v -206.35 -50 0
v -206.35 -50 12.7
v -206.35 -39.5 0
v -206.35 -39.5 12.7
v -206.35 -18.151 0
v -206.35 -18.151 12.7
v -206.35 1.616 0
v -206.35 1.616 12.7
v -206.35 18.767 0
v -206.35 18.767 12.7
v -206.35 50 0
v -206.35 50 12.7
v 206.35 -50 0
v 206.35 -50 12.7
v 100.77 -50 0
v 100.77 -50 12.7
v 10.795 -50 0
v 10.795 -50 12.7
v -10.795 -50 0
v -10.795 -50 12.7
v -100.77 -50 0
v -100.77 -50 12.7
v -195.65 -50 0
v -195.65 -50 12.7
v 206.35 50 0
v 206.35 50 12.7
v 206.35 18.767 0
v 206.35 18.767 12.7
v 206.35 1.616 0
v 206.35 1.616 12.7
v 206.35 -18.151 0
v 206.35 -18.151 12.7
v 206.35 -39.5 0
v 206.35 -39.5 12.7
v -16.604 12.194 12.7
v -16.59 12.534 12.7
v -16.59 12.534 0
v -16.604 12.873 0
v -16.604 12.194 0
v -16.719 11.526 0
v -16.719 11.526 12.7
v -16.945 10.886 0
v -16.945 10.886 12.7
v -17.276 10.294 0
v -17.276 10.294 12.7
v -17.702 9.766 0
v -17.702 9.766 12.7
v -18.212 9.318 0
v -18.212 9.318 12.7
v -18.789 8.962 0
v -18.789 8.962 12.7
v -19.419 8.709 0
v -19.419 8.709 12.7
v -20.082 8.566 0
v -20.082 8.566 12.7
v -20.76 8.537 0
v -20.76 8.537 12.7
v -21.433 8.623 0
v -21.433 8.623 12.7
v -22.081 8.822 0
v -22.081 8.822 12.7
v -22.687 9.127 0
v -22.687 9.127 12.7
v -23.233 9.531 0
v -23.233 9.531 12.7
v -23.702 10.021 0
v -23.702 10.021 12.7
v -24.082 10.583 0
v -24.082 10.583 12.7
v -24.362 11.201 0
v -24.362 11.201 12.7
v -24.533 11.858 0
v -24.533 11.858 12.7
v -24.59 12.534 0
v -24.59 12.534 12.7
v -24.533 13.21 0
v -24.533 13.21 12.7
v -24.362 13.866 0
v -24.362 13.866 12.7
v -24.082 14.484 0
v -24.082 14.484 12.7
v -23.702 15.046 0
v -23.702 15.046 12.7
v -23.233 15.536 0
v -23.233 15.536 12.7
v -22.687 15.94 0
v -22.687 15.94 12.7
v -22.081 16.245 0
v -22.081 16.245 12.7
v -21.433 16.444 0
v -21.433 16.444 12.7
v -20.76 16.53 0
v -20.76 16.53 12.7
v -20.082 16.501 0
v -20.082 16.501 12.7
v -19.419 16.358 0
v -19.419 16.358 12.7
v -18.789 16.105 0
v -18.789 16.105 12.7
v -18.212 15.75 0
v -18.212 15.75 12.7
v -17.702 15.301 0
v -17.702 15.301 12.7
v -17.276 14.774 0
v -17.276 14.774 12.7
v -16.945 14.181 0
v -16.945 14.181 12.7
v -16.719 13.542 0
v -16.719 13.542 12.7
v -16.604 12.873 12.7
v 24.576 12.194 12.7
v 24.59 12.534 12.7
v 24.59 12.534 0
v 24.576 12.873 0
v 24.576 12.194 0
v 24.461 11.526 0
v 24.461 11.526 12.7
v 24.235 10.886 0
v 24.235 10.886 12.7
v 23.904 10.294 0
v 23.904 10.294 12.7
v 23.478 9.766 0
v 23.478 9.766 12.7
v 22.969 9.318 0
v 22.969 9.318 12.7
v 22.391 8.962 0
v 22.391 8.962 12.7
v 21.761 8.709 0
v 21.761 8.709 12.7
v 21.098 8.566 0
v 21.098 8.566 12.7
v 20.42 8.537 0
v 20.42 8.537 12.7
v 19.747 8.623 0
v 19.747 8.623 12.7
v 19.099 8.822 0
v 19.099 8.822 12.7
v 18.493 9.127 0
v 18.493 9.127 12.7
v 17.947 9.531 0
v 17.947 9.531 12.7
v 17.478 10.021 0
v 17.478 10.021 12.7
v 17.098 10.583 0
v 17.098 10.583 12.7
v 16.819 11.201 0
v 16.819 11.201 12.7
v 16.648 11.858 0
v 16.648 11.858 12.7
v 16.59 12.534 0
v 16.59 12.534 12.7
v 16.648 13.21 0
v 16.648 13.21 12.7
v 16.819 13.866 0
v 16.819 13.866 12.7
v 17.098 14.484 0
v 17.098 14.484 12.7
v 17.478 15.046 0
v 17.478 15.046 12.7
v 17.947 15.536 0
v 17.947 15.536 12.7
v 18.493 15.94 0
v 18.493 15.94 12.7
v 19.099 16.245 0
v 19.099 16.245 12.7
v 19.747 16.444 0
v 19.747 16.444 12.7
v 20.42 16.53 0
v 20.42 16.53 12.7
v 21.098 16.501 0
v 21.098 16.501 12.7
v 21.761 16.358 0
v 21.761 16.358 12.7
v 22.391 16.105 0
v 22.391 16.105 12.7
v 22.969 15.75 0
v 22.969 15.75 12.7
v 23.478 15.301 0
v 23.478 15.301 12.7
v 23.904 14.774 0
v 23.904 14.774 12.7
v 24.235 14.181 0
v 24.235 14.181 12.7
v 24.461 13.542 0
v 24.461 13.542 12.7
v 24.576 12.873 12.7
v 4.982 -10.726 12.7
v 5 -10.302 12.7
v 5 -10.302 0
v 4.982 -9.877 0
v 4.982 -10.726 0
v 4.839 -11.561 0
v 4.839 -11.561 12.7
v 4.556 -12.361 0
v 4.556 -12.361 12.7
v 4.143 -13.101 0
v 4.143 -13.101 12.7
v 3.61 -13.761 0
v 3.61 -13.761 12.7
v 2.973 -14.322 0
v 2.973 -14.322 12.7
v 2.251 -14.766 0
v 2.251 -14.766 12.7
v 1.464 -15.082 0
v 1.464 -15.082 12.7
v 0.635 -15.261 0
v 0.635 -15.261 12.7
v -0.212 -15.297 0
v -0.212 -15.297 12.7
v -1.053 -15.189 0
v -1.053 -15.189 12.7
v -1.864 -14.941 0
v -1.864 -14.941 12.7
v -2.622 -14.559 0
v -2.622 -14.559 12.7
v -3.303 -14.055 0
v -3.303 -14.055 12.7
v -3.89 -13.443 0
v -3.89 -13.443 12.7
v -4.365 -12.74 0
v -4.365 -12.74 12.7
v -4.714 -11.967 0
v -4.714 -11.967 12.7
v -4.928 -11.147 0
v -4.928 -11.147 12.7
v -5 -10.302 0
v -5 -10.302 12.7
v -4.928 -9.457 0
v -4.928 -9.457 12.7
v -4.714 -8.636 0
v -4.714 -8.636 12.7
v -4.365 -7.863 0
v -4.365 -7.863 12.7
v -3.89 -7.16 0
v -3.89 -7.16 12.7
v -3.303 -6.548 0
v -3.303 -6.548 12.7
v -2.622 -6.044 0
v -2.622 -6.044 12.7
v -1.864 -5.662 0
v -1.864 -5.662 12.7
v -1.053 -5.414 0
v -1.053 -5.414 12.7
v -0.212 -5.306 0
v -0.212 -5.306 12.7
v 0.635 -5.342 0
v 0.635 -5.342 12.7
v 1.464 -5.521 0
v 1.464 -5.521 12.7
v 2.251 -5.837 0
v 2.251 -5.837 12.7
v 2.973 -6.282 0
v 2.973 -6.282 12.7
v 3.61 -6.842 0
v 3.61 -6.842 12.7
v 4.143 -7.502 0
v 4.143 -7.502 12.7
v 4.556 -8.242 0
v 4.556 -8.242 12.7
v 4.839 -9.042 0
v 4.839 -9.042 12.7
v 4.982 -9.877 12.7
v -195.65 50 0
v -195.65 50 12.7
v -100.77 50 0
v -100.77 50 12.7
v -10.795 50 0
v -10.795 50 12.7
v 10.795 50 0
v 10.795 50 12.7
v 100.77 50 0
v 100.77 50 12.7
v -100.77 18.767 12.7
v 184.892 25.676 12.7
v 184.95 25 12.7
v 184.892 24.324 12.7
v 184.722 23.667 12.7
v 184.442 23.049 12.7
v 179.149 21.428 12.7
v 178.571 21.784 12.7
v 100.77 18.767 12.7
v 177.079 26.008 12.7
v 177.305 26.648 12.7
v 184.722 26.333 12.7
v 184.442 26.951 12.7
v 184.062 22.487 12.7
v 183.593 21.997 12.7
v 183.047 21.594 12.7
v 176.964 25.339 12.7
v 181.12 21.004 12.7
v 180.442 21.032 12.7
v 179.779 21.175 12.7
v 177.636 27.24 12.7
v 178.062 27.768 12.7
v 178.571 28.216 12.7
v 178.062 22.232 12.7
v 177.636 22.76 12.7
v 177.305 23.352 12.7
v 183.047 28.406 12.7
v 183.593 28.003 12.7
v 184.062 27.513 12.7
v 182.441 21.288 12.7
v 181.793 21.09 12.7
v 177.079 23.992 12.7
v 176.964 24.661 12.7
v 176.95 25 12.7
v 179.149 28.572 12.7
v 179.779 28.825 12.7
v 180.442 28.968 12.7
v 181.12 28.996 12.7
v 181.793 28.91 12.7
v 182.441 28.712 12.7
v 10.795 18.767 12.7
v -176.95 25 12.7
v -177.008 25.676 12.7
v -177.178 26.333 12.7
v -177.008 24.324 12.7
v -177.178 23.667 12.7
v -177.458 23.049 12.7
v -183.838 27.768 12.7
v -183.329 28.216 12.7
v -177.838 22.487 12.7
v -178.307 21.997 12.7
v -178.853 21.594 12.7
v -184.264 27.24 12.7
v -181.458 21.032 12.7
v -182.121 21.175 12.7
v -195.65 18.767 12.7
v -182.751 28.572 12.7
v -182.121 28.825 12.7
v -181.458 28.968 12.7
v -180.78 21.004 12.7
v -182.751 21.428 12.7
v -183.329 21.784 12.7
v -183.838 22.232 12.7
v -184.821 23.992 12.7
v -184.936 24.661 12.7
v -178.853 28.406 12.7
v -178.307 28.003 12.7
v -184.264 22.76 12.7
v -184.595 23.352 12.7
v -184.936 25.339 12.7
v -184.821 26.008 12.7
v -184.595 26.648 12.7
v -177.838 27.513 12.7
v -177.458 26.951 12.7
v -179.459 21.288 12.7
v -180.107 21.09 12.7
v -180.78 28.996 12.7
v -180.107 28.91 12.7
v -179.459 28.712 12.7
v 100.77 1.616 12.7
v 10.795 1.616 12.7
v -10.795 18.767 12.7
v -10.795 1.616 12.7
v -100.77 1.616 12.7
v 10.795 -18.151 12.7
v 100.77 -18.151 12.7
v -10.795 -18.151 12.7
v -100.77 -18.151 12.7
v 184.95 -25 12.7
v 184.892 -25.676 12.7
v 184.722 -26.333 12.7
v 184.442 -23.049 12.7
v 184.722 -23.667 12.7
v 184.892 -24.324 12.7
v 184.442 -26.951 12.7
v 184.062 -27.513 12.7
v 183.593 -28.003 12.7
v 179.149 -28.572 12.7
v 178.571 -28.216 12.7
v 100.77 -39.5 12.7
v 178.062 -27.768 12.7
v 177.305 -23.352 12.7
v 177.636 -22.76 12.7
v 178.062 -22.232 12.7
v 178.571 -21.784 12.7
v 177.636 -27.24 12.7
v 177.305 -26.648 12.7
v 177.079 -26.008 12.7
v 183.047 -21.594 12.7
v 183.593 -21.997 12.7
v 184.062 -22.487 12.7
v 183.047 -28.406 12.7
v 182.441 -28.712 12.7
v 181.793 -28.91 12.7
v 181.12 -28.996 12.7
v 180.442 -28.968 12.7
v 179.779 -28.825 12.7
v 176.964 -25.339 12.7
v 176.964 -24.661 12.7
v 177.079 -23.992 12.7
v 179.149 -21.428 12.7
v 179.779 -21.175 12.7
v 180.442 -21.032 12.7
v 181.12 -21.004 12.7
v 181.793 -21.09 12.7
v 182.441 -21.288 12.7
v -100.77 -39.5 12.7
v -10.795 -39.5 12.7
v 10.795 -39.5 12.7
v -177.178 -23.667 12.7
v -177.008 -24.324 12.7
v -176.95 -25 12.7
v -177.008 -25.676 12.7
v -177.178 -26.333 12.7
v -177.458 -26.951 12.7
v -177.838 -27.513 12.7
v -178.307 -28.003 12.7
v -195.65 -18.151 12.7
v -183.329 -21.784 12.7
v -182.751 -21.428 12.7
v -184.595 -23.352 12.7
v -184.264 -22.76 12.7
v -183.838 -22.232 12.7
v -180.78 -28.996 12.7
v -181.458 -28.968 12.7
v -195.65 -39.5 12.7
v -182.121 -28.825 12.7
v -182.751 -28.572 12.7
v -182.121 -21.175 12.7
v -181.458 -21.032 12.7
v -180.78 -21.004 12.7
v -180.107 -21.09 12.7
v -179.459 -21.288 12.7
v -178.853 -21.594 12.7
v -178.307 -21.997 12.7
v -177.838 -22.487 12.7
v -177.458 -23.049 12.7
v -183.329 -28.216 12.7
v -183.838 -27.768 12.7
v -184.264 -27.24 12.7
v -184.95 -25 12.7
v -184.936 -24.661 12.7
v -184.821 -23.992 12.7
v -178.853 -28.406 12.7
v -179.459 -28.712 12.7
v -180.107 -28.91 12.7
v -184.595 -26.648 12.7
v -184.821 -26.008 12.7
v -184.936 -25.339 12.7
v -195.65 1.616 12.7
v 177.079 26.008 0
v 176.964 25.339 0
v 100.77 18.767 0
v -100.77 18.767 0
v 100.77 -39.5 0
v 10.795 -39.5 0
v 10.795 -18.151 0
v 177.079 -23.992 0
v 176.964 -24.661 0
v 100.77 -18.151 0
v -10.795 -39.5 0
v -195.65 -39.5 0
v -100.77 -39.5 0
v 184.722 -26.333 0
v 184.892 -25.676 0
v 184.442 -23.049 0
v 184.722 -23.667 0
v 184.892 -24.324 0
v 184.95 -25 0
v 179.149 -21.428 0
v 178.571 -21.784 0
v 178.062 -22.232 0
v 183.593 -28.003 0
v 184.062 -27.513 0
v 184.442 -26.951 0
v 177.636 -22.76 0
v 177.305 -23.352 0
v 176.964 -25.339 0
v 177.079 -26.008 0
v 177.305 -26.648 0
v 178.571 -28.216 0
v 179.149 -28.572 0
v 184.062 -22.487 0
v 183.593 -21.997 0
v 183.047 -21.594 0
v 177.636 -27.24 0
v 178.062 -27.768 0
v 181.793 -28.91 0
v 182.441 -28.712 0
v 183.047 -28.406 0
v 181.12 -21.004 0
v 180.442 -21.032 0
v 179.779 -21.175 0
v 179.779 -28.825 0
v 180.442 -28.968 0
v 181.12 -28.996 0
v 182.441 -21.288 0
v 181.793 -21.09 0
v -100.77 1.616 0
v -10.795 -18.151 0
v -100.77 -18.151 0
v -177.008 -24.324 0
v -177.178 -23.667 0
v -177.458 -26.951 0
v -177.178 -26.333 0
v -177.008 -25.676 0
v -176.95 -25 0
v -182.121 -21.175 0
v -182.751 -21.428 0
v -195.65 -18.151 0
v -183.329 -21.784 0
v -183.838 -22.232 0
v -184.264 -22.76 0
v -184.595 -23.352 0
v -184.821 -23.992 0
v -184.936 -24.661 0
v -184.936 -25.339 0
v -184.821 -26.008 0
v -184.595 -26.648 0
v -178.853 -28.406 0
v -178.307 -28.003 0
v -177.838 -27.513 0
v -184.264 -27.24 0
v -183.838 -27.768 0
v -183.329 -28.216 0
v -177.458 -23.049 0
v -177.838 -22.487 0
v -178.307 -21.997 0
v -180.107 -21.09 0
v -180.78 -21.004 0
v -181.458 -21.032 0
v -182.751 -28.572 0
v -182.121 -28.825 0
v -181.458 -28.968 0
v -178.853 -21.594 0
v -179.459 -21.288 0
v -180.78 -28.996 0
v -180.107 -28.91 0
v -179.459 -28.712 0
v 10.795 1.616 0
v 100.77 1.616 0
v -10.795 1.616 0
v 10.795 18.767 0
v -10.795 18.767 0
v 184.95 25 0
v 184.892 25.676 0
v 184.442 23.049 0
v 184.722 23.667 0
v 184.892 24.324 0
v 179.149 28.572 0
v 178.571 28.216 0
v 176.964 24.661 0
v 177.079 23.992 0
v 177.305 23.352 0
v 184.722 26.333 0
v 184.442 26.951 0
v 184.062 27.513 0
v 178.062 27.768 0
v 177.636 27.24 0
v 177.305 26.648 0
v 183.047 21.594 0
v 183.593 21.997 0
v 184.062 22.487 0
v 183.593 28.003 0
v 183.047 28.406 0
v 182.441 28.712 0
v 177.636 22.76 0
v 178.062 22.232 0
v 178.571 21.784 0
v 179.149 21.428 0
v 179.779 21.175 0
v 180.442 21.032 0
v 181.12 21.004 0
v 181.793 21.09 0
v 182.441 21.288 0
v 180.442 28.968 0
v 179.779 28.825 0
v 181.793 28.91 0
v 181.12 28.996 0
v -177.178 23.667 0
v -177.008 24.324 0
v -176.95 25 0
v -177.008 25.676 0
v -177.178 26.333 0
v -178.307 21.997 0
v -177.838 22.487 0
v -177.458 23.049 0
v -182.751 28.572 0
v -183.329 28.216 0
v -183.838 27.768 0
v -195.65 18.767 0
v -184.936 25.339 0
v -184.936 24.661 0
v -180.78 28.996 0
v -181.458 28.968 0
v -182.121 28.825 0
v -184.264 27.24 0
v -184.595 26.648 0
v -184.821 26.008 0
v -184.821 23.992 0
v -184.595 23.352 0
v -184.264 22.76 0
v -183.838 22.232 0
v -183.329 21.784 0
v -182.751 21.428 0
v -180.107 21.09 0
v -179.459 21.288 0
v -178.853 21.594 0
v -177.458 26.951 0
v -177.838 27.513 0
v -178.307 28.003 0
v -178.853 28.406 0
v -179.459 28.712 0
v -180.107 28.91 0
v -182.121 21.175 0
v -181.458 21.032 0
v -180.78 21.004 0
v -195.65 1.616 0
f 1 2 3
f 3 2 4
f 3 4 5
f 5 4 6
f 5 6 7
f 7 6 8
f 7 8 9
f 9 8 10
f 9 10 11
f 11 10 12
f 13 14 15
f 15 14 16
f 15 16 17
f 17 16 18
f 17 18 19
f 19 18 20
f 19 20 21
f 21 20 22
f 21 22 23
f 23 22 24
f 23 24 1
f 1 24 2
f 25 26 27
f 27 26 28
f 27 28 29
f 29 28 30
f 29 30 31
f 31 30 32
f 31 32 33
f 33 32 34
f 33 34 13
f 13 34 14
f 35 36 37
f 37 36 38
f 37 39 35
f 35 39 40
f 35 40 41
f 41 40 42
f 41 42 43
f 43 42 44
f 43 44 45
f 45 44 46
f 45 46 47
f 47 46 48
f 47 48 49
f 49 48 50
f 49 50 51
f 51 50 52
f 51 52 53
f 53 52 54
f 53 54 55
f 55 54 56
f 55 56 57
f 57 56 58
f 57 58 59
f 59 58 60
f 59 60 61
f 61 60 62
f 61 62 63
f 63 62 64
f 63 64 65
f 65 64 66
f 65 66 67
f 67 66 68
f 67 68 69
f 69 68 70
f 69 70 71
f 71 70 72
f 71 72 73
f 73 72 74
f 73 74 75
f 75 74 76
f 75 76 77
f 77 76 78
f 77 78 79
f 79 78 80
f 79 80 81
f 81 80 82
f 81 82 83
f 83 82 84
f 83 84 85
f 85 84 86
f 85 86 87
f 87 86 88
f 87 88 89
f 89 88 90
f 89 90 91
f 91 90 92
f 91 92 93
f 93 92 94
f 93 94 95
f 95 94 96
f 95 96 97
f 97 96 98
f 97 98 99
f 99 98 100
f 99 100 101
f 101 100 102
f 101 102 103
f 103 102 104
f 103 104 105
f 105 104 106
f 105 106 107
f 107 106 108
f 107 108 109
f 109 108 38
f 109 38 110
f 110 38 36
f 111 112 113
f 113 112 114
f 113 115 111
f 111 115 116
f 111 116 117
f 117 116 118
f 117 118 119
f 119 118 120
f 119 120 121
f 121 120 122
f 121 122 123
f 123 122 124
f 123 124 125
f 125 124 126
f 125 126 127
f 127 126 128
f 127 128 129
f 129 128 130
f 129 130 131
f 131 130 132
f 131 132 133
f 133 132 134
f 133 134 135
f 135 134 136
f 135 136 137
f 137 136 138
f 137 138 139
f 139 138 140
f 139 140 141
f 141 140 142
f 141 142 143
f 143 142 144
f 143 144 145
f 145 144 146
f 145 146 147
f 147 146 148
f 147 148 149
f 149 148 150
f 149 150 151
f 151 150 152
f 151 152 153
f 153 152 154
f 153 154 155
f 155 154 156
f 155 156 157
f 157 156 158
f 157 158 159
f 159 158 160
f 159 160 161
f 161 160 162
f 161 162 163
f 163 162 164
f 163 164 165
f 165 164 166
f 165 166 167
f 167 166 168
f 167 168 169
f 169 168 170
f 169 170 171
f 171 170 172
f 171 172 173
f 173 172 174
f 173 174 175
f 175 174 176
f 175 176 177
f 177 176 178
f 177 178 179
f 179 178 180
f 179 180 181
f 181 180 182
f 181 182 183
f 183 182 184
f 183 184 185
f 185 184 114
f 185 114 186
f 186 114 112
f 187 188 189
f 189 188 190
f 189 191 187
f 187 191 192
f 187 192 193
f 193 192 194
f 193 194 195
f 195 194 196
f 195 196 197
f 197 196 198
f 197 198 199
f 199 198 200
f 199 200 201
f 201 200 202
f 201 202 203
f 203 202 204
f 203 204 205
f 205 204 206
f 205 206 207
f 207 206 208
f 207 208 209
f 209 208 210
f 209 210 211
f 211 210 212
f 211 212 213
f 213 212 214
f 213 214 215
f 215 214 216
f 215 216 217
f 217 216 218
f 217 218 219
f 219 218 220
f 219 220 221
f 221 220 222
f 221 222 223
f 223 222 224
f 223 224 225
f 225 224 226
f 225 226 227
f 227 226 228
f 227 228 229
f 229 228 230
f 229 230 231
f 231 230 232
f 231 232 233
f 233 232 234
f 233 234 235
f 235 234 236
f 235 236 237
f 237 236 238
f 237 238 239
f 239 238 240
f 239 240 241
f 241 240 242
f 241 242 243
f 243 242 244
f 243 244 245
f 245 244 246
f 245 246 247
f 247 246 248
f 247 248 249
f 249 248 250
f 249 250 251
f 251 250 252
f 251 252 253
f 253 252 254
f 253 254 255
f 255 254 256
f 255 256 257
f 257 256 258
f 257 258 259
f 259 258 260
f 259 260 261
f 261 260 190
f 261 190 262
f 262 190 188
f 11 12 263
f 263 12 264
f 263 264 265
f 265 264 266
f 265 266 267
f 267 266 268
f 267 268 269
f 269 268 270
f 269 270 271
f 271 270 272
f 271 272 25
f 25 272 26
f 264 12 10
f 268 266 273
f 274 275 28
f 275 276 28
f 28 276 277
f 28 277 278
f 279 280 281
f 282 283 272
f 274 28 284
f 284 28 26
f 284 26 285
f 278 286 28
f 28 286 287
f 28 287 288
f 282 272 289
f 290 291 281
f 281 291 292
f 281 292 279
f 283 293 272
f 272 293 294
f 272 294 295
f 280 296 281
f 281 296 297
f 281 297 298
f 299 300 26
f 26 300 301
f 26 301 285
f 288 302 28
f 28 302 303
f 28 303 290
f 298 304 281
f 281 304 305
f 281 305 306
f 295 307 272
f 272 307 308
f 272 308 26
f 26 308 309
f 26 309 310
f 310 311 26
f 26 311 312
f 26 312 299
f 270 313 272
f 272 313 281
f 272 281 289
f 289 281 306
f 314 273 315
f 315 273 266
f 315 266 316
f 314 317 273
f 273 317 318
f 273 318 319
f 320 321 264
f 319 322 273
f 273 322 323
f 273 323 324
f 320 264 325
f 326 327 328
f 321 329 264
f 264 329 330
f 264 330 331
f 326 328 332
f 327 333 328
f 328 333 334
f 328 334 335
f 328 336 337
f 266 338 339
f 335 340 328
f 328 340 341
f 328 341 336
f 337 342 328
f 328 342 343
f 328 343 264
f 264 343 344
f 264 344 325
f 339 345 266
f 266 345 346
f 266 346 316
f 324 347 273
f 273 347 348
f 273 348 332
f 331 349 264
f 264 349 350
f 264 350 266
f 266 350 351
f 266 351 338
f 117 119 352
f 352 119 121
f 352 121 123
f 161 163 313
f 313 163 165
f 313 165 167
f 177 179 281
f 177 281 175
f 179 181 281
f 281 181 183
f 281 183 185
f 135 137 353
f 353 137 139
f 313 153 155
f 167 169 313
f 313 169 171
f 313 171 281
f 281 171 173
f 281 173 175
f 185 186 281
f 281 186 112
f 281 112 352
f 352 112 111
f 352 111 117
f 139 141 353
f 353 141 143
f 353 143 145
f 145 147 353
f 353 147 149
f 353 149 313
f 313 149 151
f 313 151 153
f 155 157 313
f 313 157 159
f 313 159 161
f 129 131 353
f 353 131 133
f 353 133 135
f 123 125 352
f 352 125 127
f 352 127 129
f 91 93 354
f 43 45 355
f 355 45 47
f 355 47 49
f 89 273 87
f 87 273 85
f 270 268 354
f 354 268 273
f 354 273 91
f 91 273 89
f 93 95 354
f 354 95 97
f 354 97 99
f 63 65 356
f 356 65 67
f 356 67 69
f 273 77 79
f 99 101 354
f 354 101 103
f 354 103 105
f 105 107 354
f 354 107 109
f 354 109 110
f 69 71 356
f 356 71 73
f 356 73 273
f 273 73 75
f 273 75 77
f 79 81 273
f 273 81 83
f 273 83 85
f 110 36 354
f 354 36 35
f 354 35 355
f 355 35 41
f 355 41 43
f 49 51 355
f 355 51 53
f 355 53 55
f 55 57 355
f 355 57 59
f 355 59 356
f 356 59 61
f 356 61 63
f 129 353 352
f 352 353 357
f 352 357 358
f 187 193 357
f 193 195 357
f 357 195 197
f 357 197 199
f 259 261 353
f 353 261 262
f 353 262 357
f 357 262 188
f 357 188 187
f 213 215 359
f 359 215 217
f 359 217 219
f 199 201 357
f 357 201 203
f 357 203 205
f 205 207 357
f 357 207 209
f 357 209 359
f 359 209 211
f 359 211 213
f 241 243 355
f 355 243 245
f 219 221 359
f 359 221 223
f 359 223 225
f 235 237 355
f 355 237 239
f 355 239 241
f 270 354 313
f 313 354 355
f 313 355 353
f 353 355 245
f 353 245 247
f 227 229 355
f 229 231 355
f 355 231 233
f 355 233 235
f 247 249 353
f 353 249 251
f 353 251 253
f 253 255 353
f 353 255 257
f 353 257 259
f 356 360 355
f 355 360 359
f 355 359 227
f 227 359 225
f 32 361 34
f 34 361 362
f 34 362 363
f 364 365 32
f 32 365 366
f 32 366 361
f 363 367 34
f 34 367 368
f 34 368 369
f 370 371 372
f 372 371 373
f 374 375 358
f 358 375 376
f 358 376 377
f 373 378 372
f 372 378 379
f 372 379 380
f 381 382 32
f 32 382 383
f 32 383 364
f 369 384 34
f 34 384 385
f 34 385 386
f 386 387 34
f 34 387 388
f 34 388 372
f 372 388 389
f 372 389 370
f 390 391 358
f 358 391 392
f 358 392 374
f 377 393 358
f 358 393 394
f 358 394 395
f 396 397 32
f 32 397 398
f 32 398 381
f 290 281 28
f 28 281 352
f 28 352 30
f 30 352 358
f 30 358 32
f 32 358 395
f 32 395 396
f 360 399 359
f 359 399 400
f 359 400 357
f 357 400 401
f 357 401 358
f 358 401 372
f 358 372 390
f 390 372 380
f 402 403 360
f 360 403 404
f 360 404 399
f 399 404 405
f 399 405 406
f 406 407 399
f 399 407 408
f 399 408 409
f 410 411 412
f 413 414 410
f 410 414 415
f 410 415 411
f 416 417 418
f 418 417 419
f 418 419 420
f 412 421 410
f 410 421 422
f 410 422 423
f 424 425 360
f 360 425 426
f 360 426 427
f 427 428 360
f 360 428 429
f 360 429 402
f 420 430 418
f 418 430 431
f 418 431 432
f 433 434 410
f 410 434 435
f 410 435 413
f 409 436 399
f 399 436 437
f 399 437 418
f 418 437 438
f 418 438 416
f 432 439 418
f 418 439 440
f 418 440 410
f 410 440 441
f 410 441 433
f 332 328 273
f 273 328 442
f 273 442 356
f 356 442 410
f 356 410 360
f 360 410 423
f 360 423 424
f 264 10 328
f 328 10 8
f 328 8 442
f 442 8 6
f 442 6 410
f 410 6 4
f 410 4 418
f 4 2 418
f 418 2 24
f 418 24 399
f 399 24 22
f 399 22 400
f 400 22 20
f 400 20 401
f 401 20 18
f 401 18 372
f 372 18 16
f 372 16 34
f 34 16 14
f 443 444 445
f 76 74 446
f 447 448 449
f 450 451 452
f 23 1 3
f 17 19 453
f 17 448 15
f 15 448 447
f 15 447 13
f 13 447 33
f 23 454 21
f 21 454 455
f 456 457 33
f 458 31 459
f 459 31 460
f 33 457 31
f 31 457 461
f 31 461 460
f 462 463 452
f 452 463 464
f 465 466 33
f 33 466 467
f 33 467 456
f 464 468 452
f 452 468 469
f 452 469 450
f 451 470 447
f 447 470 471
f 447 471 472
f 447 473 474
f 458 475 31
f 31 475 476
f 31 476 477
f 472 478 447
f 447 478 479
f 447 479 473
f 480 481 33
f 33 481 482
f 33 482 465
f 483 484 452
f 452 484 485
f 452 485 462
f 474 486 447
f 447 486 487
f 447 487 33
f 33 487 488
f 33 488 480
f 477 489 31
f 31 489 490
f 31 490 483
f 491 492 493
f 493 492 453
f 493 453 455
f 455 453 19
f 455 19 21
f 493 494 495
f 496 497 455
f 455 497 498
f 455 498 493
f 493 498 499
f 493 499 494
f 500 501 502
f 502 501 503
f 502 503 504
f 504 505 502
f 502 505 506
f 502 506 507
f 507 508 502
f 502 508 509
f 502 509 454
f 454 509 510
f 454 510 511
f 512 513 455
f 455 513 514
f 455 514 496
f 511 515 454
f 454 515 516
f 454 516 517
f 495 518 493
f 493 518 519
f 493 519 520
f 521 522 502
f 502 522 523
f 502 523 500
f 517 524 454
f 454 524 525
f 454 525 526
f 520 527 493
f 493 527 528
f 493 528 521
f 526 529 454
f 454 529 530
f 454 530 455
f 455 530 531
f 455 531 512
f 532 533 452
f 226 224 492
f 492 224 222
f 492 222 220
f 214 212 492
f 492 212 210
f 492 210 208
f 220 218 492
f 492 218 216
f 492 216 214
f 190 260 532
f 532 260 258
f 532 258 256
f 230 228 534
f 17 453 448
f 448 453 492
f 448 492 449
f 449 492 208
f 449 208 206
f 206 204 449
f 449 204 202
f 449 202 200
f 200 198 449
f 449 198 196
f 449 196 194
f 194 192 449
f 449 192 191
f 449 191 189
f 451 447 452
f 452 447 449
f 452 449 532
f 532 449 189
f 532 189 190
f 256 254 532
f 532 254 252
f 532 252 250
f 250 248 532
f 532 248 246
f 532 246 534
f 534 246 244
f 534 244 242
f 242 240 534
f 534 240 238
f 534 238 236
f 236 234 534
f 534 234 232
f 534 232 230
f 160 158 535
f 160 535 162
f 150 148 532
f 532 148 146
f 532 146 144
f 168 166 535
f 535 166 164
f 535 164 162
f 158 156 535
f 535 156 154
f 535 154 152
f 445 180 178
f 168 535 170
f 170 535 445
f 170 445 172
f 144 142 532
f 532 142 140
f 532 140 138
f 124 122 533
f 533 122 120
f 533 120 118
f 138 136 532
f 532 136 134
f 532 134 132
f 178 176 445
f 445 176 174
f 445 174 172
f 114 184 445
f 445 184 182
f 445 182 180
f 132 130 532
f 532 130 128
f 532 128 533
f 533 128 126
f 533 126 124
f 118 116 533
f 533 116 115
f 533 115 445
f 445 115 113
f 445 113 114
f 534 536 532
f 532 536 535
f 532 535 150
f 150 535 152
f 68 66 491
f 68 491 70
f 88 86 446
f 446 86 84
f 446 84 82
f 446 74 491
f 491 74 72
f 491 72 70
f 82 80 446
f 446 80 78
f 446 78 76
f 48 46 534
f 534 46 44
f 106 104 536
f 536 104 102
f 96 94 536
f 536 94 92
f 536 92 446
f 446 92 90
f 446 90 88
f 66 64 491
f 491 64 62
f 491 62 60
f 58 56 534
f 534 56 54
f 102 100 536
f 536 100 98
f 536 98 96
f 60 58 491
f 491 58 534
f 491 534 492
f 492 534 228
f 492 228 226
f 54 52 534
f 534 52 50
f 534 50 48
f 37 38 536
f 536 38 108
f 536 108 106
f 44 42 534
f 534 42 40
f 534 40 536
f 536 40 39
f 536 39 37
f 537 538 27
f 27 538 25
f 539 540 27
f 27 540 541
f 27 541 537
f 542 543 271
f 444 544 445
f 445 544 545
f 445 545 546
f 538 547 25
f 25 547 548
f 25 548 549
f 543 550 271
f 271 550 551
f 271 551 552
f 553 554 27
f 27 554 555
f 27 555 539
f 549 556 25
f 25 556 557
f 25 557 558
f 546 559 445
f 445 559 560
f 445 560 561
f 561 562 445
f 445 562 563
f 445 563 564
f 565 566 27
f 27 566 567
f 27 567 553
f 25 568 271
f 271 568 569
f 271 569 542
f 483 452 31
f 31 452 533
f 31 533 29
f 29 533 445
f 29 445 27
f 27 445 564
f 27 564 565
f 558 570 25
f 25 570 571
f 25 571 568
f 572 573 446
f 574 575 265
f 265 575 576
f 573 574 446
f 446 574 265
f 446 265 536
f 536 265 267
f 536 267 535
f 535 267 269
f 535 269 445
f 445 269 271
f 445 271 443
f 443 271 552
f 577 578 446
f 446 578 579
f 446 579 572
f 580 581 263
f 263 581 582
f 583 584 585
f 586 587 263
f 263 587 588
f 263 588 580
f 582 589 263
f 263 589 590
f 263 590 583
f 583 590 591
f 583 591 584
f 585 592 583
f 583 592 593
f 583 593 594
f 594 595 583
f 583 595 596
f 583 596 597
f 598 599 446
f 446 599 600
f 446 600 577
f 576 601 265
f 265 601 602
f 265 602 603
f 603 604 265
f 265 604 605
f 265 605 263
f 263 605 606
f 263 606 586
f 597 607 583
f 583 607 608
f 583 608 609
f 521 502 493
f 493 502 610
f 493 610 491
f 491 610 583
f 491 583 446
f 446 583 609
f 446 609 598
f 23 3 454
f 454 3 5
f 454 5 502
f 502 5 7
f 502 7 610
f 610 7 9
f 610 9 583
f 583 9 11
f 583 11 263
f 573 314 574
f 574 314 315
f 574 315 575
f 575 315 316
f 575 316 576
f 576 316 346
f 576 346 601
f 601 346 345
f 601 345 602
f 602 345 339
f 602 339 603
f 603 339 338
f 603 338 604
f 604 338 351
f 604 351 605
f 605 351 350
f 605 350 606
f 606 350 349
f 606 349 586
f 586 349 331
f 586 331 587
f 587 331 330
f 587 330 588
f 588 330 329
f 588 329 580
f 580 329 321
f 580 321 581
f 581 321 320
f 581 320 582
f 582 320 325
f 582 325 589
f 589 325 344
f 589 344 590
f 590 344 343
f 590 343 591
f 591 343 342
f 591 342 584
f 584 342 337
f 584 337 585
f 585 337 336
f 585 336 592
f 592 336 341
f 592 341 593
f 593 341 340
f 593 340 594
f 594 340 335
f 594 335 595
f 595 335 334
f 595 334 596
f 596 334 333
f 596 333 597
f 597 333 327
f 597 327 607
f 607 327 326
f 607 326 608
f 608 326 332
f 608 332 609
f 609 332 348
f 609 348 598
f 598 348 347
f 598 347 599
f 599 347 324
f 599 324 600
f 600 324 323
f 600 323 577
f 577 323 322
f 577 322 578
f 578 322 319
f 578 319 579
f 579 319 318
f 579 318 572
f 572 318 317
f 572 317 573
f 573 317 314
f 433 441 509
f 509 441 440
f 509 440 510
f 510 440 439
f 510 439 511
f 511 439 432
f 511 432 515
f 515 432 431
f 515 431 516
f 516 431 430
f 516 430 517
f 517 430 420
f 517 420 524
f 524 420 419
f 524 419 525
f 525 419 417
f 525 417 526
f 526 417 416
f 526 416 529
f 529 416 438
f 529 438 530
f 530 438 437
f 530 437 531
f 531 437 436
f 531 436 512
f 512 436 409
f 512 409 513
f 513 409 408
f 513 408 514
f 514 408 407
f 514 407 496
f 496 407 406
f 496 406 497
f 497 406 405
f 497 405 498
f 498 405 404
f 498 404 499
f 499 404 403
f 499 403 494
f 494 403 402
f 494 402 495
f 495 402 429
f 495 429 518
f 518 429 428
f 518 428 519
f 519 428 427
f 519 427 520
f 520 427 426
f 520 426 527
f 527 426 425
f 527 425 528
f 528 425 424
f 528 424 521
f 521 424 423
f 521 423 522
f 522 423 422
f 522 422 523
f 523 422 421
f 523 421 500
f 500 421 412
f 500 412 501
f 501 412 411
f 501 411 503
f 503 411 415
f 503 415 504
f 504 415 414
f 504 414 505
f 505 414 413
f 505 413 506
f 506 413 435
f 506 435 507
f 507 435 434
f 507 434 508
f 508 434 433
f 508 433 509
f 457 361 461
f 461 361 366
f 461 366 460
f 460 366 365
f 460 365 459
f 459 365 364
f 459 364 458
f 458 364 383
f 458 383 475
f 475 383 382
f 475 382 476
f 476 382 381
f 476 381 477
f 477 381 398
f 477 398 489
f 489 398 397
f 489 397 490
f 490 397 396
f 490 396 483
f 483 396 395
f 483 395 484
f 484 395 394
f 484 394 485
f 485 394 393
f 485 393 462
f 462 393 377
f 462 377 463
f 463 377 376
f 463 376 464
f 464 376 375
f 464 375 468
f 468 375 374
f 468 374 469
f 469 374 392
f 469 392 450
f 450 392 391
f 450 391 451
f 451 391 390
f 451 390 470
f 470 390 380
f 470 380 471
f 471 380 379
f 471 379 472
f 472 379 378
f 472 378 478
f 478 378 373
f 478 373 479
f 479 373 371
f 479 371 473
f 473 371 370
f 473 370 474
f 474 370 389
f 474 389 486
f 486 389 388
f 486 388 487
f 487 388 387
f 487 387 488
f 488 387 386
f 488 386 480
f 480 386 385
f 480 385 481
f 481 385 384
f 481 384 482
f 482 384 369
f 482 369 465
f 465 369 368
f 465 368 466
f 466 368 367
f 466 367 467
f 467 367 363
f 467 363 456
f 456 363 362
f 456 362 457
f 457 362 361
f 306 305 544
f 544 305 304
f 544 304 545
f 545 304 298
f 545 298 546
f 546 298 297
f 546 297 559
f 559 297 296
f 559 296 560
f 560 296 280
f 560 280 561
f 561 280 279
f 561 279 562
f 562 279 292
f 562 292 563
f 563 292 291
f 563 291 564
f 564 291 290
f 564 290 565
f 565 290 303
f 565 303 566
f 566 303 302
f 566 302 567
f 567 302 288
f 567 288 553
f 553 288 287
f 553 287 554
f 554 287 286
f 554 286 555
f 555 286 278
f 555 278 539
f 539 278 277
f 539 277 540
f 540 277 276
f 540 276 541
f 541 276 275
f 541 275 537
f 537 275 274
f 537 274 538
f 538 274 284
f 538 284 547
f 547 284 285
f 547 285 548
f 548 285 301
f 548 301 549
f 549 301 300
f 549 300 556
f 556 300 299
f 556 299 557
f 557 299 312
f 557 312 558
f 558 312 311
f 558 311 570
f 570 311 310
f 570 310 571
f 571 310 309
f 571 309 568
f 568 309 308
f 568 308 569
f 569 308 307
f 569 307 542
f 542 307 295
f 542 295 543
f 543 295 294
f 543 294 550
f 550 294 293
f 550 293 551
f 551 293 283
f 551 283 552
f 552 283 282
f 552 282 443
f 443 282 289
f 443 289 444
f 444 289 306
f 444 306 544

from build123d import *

# Parameters (mm, degrees)
SKETCH1_W           = 412.7
SKETCH1_H           = 100
SKETCH1_R           = 4
SKETCH1_R_2         = 5
BOSS_EXTRUDE1_DEPTH = 12.7
CUT_EXTRUDE1_REACH  = 214.701
SKETCH2_R           = 4


with BuildPart() as part:
    # Sketch1 → Boss-Extrude1 (new body)
    with BuildSketch(Plane.XY):
        Rectangle(SKETCH1_W, SKETCH1_H)
        with Locations((-20.590065585, 12.533614425)):
            Circle(SKETCH1_R, mode=Mode.SUBTRACT)
        with Locations((20.590065585, 12.533614425)):
            Circle(SKETCH1_R, mode=Mode.SUBTRACT)
        with Locations((0, -10.30151519)):
            Circle(SKETCH1_R_2, mode=Mode.SUBTRACT)
    extrude(amount=BOSS_EXTRUDE1_DEPTH)

    # Sketch2 → Cut-Extrude1 (cut, up to next)
    with BuildSketch(Plane.XY.offset(12.7), mode=Mode.PRIVATE) as cut_extrude1_sk1:
        with Locations((-180.95, 25)):
            Circle(SKETCH2_R)
    cut_extrude1_tool1 = extrude(cut_extrude1_sk1.sketch, amount=-CUT_EXTRUDE1_REACH, mode=Mode.PRIVATE) & part.part
    # Sketch2 → Cut-Extrude1 (cut, up to next)
    with BuildSketch(Plane.XY.offset(12.7), mode=Mode.PRIVATE) as cut_extrude1_sk2:
        with Locations((-180.95, -25)):
            Circle(SKETCH2_R)
    cut_extrude1_tool2 = extrude(cut_extrude1_sk2.sketch, amount=-CUT_EXTRUDE1_REACH, mode=Mode.PRIVATE) & part.part
    # Sketch2 → Cut-Extrude1 (cut, up to next)
    with BuildSketch(Plane.XY.offset(12.7), mode=Mode.PRIVATE) as cut_extrude1_sk3:
        with Locations((180.95, -25)):
            Circle(SKETCH2_R)
    cut_extrude1_tool3 = extrude(cut_extrude1_sk3.sketch, amount=-CUT_EXTRUDE1_REACH, mode=Mode.PRIVATE) & part.part
    # Sketch2 → Cut-Extrude1 (cut, up to next)
    with BuildSketch(Plane.XY.offset(12.7), mode=Mode.PRIVATE) as cut_extrude1_sk4:
        with Locations((180.95, 25)):
            Circle(SKETCH2_R)
    cut_extrude1_tool4 = extrude(cut_extrude1_sk4.sketch, amount=-CUT_EXTRUDE1_REACH, mode=Mode.PRIVATE) & part.part
    add(cut_extrude1_tool1.solids().sort_by_distance((-180.95, 25, 12.7))[0], mode=Mode.SUBTRACT)
    add(cut_extrude1_tool2.solids().sort_by_distance((-180.95, -25, 12.7))[0], mode=Mode.SUBTRACT)
    add(cut_extrude1_tool3.solids().sort_by_distance((180.95, -25, 12.7))[0], mode=Mode.SUBTRACT)
    add(cut_extrude1_tool4.solids().sort_by_distance((180.95, 25, 12.7))[0], mode=Mode.SUBTRACT)


solid = part.part
